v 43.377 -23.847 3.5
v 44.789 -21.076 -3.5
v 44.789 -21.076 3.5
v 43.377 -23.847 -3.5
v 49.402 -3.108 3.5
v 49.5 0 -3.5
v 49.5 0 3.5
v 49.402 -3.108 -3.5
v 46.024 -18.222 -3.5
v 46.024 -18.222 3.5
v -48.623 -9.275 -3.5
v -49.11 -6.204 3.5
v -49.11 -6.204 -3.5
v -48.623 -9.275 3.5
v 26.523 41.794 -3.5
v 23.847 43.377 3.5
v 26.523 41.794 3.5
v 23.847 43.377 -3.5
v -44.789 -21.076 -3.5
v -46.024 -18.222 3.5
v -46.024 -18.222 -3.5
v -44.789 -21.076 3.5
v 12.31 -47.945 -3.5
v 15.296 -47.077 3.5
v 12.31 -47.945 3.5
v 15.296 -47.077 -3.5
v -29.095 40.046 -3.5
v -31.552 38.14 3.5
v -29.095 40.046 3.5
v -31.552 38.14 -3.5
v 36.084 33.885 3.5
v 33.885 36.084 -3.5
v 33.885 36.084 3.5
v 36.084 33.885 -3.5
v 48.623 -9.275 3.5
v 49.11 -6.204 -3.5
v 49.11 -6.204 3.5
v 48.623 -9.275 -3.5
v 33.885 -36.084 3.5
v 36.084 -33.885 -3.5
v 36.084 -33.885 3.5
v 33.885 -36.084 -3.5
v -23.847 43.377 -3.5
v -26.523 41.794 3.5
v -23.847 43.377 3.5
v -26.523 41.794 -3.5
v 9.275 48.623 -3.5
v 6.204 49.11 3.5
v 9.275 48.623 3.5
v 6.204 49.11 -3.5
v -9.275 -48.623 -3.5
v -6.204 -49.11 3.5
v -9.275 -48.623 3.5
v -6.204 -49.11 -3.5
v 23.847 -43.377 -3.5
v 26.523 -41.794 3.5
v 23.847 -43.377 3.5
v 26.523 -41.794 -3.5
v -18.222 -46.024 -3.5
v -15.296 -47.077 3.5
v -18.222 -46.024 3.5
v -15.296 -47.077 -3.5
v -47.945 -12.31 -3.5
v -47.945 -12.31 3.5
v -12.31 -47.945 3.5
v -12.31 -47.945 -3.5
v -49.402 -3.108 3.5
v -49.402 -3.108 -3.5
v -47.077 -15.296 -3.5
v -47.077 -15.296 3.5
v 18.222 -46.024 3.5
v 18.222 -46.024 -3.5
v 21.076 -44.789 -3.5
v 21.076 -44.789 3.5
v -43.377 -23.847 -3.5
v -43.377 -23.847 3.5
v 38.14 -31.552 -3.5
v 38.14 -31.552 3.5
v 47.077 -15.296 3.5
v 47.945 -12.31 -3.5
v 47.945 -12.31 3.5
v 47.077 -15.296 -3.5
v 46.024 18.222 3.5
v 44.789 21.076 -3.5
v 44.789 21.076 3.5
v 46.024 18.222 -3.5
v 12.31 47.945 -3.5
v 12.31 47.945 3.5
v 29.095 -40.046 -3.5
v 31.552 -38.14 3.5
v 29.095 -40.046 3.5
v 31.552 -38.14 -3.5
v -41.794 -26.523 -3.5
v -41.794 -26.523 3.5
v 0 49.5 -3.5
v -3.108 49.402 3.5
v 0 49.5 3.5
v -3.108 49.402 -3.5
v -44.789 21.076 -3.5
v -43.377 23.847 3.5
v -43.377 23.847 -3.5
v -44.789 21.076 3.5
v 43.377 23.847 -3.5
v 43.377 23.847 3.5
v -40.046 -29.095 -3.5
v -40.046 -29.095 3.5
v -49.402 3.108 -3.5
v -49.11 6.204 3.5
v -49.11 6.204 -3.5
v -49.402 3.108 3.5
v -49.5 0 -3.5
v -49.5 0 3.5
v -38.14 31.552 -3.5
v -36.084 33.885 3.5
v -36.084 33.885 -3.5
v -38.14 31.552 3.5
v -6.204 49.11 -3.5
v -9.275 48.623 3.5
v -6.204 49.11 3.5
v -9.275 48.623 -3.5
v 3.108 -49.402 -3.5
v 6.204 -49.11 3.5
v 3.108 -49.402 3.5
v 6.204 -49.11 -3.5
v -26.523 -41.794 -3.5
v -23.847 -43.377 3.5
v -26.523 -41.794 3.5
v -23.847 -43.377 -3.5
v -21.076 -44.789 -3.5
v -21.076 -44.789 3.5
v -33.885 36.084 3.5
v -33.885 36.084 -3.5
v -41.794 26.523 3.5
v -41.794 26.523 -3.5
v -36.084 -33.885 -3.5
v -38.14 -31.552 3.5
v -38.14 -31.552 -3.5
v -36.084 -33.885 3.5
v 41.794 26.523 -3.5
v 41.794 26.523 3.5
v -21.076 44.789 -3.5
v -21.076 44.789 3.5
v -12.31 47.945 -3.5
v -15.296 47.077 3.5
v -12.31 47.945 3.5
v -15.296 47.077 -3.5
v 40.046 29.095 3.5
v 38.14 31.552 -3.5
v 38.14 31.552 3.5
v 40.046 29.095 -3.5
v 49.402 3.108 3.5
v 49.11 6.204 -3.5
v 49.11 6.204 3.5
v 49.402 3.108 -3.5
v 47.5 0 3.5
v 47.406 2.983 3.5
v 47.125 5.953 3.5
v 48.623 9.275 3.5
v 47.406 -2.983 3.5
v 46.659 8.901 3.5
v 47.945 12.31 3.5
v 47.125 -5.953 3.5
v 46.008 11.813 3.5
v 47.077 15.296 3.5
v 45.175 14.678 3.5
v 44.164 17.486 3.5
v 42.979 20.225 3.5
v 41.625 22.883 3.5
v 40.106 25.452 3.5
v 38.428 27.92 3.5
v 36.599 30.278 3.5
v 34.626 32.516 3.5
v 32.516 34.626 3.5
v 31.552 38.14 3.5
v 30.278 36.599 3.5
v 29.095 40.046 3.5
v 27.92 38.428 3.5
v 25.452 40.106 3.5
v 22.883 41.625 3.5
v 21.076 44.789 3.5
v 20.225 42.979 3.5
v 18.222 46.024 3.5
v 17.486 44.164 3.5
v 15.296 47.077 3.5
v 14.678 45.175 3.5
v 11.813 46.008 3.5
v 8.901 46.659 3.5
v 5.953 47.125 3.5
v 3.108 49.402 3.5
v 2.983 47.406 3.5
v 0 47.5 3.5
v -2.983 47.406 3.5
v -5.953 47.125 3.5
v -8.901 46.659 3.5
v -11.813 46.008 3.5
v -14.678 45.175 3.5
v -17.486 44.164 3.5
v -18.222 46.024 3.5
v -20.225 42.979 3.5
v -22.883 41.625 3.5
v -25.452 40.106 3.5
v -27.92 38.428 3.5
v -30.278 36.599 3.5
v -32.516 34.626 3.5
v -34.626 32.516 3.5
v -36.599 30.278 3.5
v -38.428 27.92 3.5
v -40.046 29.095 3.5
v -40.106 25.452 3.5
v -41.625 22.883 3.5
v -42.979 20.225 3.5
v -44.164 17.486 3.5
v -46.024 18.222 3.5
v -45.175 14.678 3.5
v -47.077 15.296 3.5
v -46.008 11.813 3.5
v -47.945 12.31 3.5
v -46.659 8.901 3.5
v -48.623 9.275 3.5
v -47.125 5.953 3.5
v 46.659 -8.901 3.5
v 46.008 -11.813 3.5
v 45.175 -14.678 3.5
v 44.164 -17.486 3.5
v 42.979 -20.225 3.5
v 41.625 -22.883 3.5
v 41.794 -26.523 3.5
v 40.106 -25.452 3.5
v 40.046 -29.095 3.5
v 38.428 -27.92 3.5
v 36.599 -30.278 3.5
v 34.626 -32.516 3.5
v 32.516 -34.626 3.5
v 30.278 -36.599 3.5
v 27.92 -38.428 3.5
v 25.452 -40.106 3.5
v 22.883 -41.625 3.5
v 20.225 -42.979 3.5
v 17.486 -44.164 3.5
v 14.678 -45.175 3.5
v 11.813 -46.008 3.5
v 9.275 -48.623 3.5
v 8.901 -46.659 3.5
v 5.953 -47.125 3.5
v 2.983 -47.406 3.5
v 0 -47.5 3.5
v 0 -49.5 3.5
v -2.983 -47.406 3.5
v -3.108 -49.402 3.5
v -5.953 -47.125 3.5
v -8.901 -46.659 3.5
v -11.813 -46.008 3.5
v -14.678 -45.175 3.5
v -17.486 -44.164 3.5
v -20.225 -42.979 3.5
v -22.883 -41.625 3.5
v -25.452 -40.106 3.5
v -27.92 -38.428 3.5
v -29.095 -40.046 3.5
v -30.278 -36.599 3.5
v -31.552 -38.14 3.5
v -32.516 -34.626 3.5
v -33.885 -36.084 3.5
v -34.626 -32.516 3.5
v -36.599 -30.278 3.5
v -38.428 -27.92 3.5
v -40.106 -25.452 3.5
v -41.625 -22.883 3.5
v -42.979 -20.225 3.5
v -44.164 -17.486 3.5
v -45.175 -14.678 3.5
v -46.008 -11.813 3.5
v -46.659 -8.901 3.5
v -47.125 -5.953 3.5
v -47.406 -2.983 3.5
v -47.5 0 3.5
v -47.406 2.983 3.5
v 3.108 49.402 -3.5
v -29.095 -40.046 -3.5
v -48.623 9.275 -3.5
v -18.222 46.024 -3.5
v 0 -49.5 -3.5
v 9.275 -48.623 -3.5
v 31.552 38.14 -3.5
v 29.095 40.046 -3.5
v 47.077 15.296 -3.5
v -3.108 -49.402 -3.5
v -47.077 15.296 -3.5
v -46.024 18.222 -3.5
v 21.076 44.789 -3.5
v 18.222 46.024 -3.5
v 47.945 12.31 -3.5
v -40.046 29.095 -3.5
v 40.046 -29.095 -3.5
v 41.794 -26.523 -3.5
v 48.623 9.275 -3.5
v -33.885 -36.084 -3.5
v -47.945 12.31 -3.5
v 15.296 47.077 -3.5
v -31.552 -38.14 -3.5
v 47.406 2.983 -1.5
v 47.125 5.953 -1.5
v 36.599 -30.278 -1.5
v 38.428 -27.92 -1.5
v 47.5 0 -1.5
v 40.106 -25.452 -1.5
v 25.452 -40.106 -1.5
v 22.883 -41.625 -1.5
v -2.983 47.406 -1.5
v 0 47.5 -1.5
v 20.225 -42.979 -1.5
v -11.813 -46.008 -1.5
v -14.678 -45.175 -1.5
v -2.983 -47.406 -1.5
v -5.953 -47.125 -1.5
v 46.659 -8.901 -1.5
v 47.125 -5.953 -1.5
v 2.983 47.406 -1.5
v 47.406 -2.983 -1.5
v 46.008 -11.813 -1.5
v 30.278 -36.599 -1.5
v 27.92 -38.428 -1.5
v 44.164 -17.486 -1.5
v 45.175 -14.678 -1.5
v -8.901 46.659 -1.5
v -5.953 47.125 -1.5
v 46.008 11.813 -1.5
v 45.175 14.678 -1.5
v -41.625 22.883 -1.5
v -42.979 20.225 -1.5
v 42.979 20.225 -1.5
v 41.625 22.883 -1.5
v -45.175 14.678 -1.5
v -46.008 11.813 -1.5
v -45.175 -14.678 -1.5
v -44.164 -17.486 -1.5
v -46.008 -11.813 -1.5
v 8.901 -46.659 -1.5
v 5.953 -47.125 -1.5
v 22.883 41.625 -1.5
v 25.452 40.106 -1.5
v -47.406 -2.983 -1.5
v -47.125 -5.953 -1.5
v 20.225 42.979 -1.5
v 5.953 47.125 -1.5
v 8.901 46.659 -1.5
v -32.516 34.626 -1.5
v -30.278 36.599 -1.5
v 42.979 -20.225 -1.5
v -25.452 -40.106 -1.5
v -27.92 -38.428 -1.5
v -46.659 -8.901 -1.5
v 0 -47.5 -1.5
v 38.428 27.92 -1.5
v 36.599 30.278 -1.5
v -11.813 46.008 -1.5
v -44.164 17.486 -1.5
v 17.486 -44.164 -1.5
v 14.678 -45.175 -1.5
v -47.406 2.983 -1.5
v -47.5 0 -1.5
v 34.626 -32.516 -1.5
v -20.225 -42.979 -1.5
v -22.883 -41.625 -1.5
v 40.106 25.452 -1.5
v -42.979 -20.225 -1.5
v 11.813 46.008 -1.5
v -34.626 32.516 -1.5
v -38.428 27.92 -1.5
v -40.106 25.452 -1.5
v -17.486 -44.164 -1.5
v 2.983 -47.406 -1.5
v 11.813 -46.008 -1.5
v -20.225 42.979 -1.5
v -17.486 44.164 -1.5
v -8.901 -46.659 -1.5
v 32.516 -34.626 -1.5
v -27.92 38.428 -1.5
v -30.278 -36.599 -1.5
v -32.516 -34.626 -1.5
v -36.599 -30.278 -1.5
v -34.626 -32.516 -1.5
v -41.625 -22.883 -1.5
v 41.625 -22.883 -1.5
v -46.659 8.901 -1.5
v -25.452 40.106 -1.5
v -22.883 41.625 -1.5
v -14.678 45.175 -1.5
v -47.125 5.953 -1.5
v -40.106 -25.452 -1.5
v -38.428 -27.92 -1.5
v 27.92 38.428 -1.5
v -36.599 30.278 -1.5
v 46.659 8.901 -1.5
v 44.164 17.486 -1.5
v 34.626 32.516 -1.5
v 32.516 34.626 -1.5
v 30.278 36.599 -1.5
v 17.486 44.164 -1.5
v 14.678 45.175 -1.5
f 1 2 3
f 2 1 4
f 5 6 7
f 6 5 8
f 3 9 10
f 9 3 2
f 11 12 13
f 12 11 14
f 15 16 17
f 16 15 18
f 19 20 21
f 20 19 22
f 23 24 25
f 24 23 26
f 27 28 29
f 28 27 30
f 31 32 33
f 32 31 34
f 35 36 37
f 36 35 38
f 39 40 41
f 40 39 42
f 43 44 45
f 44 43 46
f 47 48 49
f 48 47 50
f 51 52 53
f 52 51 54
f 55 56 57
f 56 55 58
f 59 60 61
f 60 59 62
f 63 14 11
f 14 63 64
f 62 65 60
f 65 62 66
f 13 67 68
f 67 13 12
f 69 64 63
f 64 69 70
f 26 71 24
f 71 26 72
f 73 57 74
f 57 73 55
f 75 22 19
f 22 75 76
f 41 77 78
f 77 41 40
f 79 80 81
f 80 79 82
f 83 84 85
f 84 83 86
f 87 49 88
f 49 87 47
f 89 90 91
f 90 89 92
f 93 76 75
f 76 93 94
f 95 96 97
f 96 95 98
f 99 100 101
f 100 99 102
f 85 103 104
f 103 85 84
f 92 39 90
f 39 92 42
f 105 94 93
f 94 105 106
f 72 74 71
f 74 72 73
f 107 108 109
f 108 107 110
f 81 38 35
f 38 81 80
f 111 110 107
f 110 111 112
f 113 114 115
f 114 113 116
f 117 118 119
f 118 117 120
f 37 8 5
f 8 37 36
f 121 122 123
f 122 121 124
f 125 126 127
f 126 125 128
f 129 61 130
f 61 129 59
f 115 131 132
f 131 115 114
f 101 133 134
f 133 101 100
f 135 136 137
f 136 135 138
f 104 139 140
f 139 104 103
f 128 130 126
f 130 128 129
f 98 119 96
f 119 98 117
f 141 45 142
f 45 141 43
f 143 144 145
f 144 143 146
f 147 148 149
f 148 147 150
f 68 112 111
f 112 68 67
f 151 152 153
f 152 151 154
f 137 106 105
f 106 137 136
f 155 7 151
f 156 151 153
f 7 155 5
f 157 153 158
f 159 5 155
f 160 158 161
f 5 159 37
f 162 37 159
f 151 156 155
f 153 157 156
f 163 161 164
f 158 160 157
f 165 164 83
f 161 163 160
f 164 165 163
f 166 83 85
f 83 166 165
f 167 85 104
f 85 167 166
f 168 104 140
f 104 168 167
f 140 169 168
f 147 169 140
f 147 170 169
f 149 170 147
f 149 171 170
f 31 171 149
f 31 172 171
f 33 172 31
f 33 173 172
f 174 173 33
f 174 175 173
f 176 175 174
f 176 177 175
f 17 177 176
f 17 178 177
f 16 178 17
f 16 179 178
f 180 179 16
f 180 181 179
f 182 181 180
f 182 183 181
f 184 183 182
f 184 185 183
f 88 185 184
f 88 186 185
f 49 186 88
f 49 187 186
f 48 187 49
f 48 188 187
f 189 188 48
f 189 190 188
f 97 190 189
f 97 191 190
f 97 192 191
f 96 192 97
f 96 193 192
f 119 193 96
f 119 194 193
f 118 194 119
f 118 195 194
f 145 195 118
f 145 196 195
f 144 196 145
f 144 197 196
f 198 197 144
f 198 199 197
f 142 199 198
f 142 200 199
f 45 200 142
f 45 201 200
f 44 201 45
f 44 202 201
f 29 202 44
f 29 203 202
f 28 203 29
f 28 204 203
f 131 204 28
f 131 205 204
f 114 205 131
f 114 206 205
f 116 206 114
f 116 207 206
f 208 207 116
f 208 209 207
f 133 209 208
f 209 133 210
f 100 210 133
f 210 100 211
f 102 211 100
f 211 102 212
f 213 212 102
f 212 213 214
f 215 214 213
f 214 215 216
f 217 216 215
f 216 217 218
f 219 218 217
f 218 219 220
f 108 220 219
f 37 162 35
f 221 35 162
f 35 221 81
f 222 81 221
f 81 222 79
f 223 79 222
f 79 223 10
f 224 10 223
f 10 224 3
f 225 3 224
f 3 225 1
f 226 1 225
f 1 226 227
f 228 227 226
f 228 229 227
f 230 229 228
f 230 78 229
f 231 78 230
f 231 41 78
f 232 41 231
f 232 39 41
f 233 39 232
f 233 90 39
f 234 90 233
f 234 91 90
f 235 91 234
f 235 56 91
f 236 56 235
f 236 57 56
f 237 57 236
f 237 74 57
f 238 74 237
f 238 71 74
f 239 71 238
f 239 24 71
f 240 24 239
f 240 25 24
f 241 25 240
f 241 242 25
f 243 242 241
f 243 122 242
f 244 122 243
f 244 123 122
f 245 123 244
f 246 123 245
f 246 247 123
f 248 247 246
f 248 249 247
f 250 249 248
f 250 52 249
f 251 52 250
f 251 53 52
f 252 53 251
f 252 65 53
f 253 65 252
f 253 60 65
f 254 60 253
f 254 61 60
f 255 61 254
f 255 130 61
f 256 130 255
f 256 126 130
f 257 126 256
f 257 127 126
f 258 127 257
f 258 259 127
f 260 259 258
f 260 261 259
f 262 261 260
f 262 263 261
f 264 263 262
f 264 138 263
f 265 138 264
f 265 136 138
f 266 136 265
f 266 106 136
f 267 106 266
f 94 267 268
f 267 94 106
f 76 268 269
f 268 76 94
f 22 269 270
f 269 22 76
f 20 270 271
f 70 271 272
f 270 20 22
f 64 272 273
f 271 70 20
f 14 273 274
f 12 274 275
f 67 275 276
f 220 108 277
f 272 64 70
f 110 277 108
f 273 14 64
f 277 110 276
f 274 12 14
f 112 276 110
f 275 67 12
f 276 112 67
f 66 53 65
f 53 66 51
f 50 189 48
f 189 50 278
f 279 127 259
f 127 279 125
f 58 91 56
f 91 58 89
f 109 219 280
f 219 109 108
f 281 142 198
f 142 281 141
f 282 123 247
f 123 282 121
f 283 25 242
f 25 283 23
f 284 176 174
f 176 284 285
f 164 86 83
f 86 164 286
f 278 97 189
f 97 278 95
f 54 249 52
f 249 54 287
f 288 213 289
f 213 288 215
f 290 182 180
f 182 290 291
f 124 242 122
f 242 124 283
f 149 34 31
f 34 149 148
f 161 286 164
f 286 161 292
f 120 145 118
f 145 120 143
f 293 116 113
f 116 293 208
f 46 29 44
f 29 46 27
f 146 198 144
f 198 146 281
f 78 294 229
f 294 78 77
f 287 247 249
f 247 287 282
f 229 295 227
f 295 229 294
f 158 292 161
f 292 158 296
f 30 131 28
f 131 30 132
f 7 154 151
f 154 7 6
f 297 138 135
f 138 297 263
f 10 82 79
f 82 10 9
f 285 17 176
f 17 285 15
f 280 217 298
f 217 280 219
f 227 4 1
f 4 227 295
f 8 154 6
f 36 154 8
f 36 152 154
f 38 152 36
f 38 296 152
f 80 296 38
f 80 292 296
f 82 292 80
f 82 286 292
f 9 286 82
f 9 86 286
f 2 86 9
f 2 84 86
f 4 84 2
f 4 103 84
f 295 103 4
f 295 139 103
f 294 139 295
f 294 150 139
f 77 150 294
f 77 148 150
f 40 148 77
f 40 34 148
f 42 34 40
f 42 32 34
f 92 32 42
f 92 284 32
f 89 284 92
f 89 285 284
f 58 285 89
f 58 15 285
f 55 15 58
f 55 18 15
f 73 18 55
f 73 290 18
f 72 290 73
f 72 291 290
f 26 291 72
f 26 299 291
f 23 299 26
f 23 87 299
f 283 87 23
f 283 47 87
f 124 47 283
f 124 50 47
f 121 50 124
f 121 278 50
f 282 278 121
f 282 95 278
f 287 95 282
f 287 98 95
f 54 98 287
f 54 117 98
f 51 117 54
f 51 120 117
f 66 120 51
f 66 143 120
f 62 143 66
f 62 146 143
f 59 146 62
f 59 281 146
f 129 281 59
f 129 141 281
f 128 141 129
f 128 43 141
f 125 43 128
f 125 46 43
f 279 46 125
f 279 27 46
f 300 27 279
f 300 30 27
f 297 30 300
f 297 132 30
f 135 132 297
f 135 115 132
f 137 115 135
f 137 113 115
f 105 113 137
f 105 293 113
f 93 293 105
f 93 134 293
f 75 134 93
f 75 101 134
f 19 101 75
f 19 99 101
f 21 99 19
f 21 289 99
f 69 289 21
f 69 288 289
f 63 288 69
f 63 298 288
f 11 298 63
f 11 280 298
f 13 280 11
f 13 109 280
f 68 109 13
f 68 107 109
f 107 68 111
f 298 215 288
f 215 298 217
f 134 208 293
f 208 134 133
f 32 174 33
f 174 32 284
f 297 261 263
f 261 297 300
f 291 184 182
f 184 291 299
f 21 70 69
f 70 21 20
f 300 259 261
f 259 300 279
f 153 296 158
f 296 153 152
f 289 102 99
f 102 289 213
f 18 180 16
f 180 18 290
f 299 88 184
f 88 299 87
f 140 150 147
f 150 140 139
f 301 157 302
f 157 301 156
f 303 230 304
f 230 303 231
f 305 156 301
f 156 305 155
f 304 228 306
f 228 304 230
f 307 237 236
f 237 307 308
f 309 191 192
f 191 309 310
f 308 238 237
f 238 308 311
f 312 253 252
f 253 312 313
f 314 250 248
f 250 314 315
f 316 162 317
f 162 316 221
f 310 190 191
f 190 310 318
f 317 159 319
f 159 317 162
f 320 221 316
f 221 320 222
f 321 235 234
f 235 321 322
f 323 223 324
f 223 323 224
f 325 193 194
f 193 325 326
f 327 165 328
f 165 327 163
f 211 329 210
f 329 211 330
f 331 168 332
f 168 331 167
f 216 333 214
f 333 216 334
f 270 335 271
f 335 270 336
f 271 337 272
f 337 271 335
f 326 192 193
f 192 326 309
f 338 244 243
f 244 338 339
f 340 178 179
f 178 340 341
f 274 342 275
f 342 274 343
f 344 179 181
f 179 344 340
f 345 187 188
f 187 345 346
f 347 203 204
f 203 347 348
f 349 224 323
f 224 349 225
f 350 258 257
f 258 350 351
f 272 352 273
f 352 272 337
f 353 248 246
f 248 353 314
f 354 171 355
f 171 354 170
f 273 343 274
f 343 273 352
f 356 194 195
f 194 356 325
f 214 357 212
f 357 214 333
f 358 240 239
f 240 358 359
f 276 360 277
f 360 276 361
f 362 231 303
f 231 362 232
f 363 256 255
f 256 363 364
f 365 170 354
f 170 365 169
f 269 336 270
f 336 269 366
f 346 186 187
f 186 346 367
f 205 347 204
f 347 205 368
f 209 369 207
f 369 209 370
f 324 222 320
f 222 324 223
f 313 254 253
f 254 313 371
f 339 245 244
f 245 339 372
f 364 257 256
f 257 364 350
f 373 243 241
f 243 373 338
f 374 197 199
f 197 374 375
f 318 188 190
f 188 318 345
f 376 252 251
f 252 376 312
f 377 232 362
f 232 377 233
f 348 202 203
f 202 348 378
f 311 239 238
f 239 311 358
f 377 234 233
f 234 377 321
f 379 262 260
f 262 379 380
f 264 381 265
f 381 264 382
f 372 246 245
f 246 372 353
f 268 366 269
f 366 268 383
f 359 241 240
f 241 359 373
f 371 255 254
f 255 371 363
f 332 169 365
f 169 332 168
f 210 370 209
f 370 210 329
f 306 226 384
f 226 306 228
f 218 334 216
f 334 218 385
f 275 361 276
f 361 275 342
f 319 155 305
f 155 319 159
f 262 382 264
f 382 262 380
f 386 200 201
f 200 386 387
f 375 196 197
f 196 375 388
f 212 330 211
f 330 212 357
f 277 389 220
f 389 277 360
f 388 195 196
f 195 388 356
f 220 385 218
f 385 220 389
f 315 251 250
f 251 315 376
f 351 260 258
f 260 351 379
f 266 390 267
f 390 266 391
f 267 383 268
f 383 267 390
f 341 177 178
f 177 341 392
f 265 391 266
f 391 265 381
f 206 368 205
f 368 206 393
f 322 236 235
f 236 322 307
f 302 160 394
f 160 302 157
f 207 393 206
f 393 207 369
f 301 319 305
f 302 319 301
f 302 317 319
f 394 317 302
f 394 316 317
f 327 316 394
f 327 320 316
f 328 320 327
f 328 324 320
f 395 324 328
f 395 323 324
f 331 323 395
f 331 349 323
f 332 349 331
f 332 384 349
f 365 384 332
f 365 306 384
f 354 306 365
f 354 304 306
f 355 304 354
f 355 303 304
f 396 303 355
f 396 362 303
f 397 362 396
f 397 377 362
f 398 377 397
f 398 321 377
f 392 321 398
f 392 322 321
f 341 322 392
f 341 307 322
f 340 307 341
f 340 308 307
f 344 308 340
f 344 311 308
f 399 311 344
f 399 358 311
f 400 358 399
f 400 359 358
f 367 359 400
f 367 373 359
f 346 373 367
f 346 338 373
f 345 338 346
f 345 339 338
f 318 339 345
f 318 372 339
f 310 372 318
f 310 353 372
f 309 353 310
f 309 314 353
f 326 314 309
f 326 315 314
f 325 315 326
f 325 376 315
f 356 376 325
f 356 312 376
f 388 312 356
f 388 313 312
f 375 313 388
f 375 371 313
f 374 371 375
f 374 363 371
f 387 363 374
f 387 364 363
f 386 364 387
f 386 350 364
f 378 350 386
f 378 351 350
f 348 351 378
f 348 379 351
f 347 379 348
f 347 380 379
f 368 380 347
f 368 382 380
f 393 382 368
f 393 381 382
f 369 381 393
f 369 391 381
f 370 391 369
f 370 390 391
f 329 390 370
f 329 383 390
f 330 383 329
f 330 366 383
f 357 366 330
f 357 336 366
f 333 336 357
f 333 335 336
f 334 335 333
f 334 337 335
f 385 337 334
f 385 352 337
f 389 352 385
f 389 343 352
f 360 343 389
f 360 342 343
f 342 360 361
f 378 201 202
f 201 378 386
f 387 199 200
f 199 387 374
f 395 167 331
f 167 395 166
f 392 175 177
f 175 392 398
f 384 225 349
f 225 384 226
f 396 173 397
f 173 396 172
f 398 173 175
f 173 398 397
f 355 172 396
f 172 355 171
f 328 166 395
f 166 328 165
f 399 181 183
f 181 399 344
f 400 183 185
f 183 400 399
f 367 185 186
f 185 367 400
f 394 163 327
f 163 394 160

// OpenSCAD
$fn=100;

difference() {
linear_extrude(height = 7, center = true) circle(d=99);
translate([0,0,2]) linear_extrude(height = 7, center = true) circle(d=95);
}
